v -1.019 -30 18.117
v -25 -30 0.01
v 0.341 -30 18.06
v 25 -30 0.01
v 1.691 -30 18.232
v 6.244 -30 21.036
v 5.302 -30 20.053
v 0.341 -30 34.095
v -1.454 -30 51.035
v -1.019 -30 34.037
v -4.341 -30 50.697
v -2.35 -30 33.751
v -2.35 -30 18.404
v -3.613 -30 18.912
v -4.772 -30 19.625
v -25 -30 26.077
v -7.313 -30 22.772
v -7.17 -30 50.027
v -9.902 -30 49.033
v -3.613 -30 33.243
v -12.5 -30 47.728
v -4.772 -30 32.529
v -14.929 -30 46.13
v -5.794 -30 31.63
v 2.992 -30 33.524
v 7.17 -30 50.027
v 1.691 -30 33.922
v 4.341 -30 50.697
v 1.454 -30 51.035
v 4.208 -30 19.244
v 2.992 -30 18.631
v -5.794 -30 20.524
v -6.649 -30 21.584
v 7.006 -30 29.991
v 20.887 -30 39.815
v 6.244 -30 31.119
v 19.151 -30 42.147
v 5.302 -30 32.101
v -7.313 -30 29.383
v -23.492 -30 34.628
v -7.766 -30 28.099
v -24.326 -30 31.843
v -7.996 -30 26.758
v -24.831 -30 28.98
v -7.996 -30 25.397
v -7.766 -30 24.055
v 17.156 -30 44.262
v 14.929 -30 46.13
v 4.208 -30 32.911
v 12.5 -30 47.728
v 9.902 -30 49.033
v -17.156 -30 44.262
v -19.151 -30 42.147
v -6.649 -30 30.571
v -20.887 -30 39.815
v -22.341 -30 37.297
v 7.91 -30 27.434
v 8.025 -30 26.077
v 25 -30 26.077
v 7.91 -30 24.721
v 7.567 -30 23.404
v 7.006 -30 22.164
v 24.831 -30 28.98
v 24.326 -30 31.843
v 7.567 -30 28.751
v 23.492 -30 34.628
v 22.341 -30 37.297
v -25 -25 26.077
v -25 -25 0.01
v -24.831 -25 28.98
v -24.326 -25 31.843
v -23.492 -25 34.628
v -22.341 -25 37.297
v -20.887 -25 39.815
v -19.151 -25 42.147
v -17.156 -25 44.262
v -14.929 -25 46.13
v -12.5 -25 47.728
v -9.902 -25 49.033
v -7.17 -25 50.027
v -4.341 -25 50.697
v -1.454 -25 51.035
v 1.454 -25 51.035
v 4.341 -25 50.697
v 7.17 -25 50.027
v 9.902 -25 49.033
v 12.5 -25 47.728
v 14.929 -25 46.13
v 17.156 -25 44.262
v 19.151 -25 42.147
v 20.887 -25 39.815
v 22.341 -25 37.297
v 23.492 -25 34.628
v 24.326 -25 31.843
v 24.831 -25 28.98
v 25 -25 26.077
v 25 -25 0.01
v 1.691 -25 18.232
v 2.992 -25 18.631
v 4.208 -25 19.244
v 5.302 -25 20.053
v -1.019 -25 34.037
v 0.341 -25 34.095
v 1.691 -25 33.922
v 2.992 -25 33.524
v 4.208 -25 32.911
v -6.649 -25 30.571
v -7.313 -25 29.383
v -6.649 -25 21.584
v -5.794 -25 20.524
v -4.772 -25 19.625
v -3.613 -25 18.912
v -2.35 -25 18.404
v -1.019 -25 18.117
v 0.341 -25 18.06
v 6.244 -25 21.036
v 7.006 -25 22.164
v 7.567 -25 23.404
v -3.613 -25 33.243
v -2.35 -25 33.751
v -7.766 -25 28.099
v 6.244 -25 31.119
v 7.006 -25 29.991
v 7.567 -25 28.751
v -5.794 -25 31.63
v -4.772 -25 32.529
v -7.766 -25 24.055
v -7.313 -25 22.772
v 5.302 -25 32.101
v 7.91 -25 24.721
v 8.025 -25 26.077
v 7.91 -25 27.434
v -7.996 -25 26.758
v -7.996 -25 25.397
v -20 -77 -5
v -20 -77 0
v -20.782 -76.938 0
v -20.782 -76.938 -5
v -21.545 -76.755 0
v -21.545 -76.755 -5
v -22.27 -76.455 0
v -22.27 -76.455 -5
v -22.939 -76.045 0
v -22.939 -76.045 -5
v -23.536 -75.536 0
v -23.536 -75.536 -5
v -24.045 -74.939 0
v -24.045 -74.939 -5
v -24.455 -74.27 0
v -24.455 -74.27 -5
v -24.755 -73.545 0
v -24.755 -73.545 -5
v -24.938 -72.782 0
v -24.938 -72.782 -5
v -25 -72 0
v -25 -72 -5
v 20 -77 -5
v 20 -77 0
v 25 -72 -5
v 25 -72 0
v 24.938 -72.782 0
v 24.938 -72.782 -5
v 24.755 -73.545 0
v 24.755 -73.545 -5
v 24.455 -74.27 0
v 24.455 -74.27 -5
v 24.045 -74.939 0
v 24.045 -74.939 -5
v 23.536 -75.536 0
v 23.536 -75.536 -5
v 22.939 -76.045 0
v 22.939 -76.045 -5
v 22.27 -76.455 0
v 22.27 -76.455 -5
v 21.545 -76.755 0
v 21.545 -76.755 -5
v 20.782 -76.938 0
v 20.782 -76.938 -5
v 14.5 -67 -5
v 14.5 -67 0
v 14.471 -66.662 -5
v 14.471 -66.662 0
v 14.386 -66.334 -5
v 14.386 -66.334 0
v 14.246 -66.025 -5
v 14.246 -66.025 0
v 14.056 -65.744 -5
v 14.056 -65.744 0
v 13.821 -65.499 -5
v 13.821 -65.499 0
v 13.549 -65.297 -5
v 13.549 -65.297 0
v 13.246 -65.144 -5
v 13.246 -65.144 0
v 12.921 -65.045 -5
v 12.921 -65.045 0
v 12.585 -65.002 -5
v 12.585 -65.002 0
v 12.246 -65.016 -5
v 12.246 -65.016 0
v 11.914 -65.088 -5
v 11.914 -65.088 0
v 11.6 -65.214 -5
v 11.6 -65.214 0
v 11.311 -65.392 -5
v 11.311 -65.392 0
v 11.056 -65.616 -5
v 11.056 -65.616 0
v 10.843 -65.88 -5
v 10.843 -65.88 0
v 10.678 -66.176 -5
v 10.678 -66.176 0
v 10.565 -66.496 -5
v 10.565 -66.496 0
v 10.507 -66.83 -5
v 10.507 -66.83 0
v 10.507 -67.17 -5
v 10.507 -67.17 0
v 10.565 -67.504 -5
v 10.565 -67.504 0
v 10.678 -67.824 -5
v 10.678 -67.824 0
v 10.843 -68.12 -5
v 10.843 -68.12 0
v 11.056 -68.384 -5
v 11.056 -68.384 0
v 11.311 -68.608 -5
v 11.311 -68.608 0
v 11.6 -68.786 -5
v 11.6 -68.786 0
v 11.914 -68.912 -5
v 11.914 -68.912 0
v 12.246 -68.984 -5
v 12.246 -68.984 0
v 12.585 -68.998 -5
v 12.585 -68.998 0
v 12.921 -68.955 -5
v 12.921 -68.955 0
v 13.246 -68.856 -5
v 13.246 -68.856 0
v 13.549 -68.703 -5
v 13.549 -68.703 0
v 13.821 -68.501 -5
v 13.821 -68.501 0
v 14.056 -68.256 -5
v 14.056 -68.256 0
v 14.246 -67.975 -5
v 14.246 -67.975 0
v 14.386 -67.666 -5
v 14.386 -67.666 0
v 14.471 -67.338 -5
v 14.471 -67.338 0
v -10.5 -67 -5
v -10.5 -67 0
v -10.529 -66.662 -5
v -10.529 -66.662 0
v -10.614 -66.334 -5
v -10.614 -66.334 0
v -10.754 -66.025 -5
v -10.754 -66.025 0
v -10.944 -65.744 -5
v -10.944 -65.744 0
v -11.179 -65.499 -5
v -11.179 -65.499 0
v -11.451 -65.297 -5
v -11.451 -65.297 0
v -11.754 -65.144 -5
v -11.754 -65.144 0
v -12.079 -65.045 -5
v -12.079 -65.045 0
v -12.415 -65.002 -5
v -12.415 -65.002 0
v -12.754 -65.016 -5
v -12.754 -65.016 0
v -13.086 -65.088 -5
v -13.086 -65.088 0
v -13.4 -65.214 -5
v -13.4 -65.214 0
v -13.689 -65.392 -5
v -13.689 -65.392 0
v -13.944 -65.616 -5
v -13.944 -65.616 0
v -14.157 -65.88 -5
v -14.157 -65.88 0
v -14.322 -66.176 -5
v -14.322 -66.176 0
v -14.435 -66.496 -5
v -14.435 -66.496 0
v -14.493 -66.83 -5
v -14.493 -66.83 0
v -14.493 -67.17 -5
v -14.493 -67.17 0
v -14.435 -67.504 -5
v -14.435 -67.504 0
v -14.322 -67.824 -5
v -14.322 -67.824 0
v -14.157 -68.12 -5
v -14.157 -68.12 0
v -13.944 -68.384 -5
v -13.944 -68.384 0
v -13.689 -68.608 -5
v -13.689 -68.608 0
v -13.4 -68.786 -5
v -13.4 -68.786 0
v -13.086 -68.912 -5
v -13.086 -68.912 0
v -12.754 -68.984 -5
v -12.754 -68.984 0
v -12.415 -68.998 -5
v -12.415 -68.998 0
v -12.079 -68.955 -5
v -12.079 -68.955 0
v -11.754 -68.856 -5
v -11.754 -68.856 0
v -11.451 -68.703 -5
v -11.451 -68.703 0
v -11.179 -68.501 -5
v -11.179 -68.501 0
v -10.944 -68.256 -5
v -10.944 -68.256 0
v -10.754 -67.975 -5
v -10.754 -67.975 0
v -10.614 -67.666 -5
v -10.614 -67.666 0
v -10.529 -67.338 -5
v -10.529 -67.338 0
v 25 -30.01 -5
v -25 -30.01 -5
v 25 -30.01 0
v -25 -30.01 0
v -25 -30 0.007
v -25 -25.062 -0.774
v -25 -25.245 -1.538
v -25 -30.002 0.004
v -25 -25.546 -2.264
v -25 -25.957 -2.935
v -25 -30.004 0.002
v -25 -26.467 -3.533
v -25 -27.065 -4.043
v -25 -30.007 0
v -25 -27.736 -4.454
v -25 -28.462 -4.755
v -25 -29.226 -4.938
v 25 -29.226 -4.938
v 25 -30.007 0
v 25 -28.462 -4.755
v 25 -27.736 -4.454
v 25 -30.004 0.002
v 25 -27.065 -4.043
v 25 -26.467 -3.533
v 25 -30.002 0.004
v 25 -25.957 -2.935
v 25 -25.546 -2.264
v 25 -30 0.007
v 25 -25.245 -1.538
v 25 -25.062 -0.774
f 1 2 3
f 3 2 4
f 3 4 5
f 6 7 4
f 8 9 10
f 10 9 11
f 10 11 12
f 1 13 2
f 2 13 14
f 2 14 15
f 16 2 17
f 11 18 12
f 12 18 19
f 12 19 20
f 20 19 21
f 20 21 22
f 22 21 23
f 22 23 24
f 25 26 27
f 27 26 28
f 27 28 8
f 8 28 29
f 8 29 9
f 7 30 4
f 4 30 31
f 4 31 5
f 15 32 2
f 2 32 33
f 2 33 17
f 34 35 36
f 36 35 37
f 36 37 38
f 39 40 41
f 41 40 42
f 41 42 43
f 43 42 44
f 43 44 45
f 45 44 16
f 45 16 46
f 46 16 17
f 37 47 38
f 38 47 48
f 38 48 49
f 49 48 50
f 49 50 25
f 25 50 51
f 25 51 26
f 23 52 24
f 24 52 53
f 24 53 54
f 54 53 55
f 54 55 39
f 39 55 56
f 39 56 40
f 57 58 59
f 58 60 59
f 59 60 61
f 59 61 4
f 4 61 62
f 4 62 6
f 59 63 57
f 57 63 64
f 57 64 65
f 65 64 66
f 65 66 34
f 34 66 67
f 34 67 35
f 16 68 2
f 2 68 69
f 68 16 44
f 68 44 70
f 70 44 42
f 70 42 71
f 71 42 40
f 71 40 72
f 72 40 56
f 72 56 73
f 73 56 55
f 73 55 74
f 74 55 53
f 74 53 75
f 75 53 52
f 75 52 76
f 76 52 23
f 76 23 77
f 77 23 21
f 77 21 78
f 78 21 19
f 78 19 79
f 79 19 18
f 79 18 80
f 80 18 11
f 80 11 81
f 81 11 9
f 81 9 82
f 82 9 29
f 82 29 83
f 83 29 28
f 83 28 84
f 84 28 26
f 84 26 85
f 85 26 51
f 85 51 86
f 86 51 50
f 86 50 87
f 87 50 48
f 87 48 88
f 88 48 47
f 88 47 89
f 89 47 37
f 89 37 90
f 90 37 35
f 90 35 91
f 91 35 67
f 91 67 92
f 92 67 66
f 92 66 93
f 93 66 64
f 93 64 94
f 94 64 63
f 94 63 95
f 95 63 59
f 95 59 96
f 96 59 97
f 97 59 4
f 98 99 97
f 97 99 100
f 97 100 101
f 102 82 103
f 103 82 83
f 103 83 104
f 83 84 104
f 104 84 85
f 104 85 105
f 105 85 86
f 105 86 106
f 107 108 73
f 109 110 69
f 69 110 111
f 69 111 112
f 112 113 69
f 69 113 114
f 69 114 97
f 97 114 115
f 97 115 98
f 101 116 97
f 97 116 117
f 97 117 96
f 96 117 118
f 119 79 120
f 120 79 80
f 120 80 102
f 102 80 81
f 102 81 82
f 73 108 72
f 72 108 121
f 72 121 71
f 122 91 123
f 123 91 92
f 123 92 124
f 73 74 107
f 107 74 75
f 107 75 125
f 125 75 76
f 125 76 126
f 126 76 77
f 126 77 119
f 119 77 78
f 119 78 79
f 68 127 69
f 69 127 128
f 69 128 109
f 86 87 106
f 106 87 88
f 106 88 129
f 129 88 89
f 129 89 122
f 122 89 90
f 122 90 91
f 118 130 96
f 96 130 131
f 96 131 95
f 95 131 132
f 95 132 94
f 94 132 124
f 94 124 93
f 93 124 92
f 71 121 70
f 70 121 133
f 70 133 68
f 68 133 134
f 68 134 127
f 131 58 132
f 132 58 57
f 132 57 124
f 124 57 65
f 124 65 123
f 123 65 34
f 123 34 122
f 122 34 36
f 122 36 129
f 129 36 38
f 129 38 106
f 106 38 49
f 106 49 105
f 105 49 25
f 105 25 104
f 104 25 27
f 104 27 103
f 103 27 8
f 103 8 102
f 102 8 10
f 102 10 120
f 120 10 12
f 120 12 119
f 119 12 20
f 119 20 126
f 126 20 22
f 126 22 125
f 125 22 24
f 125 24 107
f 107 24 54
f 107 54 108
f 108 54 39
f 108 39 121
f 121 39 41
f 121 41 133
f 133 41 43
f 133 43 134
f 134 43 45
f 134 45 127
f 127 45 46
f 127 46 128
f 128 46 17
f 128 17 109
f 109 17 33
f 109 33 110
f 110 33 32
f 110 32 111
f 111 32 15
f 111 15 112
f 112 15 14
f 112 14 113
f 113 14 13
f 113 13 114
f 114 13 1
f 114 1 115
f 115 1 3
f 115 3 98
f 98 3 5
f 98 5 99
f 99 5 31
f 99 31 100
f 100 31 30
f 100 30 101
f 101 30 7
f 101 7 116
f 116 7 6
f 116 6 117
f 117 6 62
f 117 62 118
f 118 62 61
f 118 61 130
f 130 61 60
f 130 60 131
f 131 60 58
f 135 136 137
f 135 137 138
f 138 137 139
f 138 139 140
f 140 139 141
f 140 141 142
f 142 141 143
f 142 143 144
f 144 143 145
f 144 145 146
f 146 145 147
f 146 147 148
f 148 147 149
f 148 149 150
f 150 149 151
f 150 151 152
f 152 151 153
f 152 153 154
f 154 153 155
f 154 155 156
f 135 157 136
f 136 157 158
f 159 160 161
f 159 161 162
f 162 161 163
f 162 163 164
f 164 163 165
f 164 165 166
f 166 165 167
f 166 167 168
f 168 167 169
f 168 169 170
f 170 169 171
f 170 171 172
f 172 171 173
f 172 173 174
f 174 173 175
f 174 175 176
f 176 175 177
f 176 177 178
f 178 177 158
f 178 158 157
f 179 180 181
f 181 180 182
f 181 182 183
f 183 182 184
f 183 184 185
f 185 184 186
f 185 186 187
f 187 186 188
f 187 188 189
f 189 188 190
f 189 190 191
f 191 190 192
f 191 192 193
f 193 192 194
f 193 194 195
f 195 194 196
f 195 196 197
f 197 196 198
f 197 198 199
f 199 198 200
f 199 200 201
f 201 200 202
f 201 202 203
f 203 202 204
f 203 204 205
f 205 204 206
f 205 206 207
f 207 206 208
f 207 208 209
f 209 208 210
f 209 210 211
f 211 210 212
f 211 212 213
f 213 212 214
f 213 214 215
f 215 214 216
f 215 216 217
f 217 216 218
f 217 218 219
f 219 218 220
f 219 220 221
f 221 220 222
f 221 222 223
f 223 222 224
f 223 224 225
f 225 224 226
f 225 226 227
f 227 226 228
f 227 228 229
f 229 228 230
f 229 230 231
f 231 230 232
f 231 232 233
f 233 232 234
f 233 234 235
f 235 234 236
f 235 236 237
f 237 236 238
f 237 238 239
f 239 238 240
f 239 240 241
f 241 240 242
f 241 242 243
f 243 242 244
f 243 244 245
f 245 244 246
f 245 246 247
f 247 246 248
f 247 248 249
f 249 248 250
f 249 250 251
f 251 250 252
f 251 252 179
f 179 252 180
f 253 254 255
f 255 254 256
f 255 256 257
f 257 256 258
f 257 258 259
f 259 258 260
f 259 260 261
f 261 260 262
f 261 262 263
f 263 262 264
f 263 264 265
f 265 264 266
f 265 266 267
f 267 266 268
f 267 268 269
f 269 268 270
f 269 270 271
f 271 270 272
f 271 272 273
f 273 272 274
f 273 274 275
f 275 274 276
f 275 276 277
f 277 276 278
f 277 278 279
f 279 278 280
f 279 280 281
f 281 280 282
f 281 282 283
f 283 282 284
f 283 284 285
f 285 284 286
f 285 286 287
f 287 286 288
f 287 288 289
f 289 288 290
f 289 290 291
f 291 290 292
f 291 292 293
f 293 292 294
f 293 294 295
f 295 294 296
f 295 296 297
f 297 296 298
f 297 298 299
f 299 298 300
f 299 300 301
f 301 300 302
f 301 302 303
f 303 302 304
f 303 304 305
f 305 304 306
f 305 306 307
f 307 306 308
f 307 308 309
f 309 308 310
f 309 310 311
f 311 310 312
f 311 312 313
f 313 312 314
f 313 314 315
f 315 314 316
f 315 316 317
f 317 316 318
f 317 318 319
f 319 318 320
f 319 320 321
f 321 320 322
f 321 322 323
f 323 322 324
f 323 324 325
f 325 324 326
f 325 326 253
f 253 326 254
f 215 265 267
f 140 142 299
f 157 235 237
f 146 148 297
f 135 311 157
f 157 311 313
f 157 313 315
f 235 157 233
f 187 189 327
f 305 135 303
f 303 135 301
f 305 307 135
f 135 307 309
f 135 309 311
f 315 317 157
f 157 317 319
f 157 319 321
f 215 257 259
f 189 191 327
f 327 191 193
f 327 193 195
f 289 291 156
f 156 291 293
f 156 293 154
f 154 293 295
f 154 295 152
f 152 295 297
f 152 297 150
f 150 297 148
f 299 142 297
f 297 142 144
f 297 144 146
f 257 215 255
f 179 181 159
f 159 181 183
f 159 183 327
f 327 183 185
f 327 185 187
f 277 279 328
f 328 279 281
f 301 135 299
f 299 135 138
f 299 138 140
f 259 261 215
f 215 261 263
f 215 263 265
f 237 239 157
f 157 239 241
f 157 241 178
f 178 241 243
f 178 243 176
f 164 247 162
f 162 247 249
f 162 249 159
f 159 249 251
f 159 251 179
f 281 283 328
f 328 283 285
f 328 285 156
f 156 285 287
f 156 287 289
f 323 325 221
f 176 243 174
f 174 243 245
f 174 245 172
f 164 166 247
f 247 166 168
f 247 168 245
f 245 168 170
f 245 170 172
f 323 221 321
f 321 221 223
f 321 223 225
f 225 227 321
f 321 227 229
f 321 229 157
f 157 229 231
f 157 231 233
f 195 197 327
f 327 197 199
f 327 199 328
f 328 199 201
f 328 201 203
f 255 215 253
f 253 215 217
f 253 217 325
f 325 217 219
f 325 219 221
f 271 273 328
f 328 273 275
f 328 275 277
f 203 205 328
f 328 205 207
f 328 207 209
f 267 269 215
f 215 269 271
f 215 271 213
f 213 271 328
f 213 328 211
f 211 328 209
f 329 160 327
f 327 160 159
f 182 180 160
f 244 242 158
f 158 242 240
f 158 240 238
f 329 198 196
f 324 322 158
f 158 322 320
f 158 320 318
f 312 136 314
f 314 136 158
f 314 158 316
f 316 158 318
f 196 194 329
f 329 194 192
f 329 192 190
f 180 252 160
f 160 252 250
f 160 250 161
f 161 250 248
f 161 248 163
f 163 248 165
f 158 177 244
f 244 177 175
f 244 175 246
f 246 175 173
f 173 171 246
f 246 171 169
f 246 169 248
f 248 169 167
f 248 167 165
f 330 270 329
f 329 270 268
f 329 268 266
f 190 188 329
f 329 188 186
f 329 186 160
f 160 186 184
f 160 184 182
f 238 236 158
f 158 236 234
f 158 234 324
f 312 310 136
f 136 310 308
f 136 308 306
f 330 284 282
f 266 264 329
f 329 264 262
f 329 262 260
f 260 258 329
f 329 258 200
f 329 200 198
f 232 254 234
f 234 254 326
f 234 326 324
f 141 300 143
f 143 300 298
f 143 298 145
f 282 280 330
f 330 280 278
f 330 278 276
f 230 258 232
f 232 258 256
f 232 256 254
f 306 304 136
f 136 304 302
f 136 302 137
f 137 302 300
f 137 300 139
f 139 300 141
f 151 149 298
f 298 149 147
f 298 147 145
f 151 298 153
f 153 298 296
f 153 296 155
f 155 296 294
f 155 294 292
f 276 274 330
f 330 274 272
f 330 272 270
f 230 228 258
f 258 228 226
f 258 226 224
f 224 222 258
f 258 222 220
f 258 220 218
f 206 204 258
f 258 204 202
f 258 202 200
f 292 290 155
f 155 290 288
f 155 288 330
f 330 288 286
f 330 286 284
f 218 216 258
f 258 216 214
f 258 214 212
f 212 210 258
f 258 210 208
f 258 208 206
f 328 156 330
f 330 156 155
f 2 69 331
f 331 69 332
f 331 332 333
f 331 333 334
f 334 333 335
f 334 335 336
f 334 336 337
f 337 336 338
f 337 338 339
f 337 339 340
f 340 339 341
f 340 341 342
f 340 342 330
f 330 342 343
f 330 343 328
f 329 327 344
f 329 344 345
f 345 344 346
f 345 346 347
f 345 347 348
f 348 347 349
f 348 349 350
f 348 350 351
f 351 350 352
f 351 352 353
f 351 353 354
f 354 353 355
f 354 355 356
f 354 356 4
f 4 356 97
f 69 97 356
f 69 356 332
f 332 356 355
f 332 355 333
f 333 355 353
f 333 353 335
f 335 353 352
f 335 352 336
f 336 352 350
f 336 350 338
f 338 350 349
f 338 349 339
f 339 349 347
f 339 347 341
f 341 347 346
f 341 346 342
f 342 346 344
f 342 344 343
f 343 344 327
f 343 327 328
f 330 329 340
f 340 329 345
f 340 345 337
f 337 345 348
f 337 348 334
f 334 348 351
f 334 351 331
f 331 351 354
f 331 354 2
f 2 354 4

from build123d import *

# Parameters (mm, degrees)
SCHIZZO1_R                           = 8.025
SCHIZZO1_R_2                         = 2
BASE_FLANGIA1_DEPTH                  = 5
PIEGATURA_START                      = -25
PIEGATURA_DELLO_SCHIZZO1_OUTLINE_W   = 50
PIEGATURA_DELLO_SCHIZZO1_OUTLINE_H   = 5
PIEGATURA_DELLO_SCHIZZO1_DEPTH       = 51
PIEGATURA_START_2                    = -30
PIEGATURA_DELLO_SCHIZZO1_2_OUTLINE_R = 8.025
PIEGATURA_DELLO_SCHIZZO1_2_DEPTH     = 5
PIEGATURA_START_3                    = -26
PIEGATURA_DELLO_SCHIZZO1_3_DEPTH     = 51
PIEGATURA_DELLO_SCHIZZO1_4_DEPTH     = 50


with BuildPart() as part:
    # Base-Flangia1: sheet metal written as solids
    # Schizzo1 → Base-Flangia1 (new body)
    with BuildSketch(Plane.XY):
        with BuildLine():
            Line((-25, -72), (-25, 0))
            ThreePointArc((-25, 0), (0, 25), (25, 0))
            Line((25, 0), (25, -72))
            ThreePointArc((25, -72), (23.535533906, -75.535533906), (20, -77))
            Line((20, -77), (-20, -77))
            ThreePointArc((-20, -77), (-23.535533906, -75.535533906), (-25, -72))
        make_face()
        Circle(SCHIZZO1_R, mode=Mode.SUBTRACT)
        with Locations((-12.5, -67)):
            Circle(SCHIZZO1_R_2, mode=Mode.SUBTRACT)
        with Locations((12.5, -67)):
            Circle(SCHIZZO1_R_2, mode=Mode.SUBTRACT)
    extrude(amount=-BASE_FLANGIA1_DEPTH)

    # Piegatura dello schizzo1: read off the stored shape, not the designer's step
    # Piegatura dello schizzo1 outline → Piegatura dello schizzo1 (cut)
    with BuildSketch(Plane(origin=(0, 0, 0), x_dir=(1, 0, 0), z_dir=(0, 1, 0)).offset(PIEGATURA_START)):
        with Locations((0, 2.5)):
            Rectangle(PIEGATURA_DELLO_SCHIZZO1_OUTLINE_W, PIEGATURA_DELLO_SCHIZZO1_OUTLINE_H)
    extrude(amount=PIEGATURA_DELLO_SCHIZZO1_DEPTH, mode=Mode.SUBTRACT)

    # Piegatura dello schizzo1 2 outline → Piegatura dello schizzo1 2 (add)
    with BuildSketch(Plane(origin=(0, 0, 0), x_dir=(1, 0, 0), z_dir=(0, 1, 0)).offset(PIEGATURA_START_2)):
        with BuildLine():
            Line((-25, 0), (-25, -26.07730122))
            ThreePointArc((-25, -26.07730122), (0, -51.07730122), (25, -26.07730122))
            Line((25, -26.07730122), (25, 0))
            Line((25, 0), (-25, 0))
        make_face()
        with Locations((0, -26.07730122)):
            Circle(PIEGATURA_DELLO_SCHIZZO1_2_OUTLINE_R, mode=Mode.SUBTRACT)
    extrude(amount=PIEGATURA_DELLO_SCHIZZO1_2_DEPTH)

    # Piegatura dello schizzo1 3 outline → Piegatura dello schizzo1 3 (cut)
    with BuildSketch(Plane.YZ.offset(PIEGATURA_START_3)):
        with BuildLine():
            ThreePointArc((-25, 0.01), (-26.467395026, -3.532604974), (-30.01, -5))
            Line((-30.01, -5), (-25, -5))
            Line((-25, -5), (-25, 0.01))
        make_face()
    extrude(amount=PIEGATURA_DELLO_SCHIZZO1_3_DEPTH, mode=Mode.SUBTRACT)

    # Piegatura dello schizzo1 4 outline → Piegatura dello schizzo1 4 (add)
    with BuildSketch(Plane.YZ.offset(PIEGATURA_START)):
        with BuildLine():
            ThreePointArc((-30, 0.01), (-30.002928932, 0.002928932), (-30.01, 0))
            Line((-30.01, 0), (-30, 0))
            Line((-30, 0), (-30, 0.01))
        make_face()
    extrude(amount=PIEGATURA_DELLO_SCHIZZO1_4_DEPTH)


solid = part.part
